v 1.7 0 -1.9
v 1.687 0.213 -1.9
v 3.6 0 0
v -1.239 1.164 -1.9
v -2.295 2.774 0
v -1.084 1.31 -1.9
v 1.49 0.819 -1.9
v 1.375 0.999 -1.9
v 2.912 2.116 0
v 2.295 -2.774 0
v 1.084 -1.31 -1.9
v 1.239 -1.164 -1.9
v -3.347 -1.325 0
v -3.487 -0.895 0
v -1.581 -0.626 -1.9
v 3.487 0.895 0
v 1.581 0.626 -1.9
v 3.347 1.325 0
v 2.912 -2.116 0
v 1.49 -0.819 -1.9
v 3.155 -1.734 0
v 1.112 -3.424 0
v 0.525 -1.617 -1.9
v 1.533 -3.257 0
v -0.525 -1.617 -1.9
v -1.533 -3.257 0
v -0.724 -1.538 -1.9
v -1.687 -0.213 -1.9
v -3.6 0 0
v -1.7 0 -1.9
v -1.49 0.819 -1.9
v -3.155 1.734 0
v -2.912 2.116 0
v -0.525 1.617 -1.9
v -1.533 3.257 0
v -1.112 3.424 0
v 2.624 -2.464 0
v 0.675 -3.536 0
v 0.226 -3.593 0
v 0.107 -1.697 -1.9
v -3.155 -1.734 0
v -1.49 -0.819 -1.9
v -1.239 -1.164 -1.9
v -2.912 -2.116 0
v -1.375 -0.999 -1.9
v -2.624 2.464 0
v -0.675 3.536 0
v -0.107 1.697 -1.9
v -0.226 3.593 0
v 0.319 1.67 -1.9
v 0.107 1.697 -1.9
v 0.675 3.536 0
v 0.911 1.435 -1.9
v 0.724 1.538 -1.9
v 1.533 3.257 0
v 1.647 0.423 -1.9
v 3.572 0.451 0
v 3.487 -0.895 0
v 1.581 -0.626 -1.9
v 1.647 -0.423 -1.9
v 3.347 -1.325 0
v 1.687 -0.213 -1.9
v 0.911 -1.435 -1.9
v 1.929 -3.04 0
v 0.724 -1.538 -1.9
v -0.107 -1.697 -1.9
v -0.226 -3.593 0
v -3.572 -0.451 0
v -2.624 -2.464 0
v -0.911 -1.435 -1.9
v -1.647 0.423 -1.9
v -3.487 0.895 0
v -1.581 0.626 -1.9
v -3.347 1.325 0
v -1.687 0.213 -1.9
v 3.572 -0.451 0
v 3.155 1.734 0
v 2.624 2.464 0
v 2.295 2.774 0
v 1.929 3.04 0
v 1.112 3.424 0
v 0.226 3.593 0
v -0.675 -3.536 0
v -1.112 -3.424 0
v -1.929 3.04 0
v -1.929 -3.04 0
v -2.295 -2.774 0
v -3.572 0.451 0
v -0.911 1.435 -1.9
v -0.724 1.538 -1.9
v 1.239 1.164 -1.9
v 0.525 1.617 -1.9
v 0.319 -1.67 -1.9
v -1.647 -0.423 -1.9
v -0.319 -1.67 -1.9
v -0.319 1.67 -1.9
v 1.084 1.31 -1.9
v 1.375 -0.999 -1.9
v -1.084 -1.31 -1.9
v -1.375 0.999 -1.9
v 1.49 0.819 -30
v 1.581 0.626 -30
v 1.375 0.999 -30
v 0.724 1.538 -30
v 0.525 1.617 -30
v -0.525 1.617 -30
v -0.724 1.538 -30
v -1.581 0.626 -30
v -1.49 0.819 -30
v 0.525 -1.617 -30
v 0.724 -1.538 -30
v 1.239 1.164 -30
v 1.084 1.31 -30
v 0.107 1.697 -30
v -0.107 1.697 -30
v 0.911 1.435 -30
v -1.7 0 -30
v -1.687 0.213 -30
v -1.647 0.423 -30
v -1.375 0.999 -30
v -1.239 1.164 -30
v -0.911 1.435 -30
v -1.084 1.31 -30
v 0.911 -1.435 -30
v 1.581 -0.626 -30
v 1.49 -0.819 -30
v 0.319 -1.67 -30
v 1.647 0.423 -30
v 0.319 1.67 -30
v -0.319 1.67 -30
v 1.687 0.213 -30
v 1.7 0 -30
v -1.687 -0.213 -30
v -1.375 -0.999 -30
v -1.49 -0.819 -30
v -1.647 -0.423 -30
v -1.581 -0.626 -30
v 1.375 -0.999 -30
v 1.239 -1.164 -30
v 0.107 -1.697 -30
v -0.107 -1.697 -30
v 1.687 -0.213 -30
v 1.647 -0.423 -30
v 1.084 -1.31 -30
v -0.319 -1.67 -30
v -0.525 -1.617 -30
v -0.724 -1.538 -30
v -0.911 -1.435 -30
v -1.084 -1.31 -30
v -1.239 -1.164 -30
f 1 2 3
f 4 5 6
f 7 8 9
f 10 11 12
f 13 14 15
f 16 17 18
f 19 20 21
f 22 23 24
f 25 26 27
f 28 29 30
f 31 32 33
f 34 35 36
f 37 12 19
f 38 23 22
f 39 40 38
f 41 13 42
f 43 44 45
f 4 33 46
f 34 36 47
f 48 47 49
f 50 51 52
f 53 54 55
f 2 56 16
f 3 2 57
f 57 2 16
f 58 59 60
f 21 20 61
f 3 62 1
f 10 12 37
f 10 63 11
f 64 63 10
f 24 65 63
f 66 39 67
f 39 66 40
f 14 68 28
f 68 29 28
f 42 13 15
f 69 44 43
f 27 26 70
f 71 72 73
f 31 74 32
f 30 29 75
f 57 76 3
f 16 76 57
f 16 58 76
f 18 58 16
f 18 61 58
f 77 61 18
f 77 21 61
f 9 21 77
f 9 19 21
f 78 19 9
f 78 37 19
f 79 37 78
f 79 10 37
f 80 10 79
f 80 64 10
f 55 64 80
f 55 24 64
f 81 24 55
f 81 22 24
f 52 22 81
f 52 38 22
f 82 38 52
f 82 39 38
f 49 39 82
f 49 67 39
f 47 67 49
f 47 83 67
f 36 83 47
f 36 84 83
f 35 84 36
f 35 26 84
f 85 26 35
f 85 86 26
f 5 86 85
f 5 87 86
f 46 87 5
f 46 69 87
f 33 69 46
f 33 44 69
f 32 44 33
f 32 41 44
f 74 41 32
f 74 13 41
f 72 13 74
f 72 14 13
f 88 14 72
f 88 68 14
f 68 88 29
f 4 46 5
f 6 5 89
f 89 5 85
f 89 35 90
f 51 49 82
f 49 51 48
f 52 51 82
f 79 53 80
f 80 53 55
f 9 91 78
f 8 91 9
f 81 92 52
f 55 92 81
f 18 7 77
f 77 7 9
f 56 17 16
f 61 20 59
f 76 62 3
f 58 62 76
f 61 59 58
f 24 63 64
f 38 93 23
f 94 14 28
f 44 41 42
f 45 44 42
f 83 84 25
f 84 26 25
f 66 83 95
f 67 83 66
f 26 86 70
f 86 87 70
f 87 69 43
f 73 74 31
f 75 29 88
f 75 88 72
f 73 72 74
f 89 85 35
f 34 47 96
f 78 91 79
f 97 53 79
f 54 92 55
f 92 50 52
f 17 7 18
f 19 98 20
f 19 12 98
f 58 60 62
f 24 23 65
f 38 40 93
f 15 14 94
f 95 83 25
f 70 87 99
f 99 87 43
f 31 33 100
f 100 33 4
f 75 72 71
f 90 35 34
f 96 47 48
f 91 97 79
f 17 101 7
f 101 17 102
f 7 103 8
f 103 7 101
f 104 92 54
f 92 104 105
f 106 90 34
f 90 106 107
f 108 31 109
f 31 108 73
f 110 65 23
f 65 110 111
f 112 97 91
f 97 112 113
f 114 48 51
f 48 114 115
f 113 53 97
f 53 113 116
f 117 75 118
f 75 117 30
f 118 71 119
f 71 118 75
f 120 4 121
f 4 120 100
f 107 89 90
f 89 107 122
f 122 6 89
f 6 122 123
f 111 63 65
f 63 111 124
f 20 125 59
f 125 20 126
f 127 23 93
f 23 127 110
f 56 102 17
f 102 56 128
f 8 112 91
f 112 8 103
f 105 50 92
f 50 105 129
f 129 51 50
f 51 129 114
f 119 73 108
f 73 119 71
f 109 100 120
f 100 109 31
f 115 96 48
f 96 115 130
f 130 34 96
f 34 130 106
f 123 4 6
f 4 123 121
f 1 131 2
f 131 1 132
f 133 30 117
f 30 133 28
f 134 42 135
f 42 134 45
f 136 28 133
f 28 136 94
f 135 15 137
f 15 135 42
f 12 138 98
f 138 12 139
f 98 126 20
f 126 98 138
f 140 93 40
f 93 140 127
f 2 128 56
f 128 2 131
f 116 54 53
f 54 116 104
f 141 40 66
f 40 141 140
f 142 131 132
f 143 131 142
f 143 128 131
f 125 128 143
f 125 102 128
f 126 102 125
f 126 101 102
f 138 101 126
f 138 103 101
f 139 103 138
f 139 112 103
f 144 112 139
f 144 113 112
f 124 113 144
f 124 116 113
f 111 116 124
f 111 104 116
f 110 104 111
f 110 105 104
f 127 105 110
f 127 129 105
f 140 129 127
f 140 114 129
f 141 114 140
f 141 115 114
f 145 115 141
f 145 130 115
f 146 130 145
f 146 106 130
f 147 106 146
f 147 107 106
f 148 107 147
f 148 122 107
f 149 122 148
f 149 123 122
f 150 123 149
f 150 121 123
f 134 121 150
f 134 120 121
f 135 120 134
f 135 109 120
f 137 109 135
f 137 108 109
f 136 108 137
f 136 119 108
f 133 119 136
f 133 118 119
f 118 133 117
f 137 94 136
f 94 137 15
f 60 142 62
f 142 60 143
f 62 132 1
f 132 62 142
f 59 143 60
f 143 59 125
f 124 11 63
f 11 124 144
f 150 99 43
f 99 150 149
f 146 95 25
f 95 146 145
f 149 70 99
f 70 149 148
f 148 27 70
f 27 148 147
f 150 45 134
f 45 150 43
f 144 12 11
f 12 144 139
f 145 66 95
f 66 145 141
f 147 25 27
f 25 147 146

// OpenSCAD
// Generated by SolidPython 1.1.3 on 2023-03-13 21:06:12
$fn = 50;


difference() {
	union() {
		translate(v = [0, 0, -1.9000000000]) {
			rotate(a = [0, 0, 0]) {
				cylinder(h = 1.9000000000, r1 = 1.7000000000, r2 = 3.6000000000);
			}
		}
		translate(v = [0, 0, -30]) {
			rotate(a = [0, 0, 0]) {
				cylinder(h = 30, r = 1.7000000000);
			}
		}
	}
	union();
}
/***********************************************
*********      SolidPython code:      **********
************************************************
 
from solid import *
import os
import subprocess

import oomB

import opsc_library_gen

mode = "laser"
#mode = "3d_print"

defined_objects = {}

radius_dict = {}
countersunk_dict = {}


def set_mode(m):
    global mode
    mode = m
    radius_dict['M6'] = 6.5/2
    radius_dict['M3'] = 3.3/2
    if mode == "laser":
        radius_dict['M6'] = 6/2
        radius_dict['M3'] = 3/2

    countersunk_dict['M3'] = {}
    countersunk_dict['M3']['little_rad'] = radius_dict['M3']
    countersunk_dict['M3']['big_rad'] = (5.5+0.6)/2
    if mode == "laser":
        countersunk_dict['M3']['big_rad'] = (4.75+0.6)/2
        countersunk_dict['M3']['little_rad'] = (4.75+0.6)/2

    countersunk_dict['M3']['height'] = 1.7


def opsc_make_object(filename, objects, save_type="none",resolution=50, layers = 1, tilediff = 200, mode="laser", overwrite=True):
    if overwrite or not os.path.exists(filename):
        set_mode(mode)
        save_type = save_type.lower()
        os.makedirs(os.path.dirname(filename), exist_ok=True)
        final_object = opsc_get_object(objects, mode = mode)
        # Save the final object to the specified filename    
        scad_render_to_file(final_object, filename, file_header='$fn = %s;' % resolution, include_orig_code=True)
        if save_type == "all":
            saveToAll(filename)
        elif save_type == "dxf":
            saveToDxf(filename)
        if mode == "laser":
            filename_laser = filename.replace(".scad","-flat.scad")
            scad_render_to_file(getLaser(final_object, layers=layers, tilediff=tilediff), filename_laser, file_header='$fn = %s;' % resolution, include_orig_code=True)
            if save_type == "all":
                saveToAll(filename_laser)
            elif save_type == "dxf":
                saveToDxf(filename_laser)


def opsc_get_object(objects, mode = "laser"):
    # Create the solidpython objects only include the positive objects and if they don't have inclusion or their inclusion is either all or mode
    # Initialize an empty list to store the results
    positive_objects = []

    # Iterate over the "objects" list
    for obj in objects:
        # Check if the current object has a "type" key with a value of "positive"
        if obj['type'] == 'positive':
            # Check if the current object has an "inclusion" key and its value matches "mode",
            # or if the current object does not have an "inclusion" key at all
            if not 'inclusion' in obj or obj['inclusion'] == "all" or obj['inclusion'] == mode:
                # Call the "get_opsc_item" function with the current object as an argument
                opsc_item = get_opsc_item(obj)
                # Add the result to the "positive_objects" list
                positive_objects.append(opsc_item)
# Initialize an empty list to store the results
    negative_objects = []

    # Iterate over the "objects" list
    for obj in objects:
        # Check if the current object has a "type" key with a value of "negative"
        if obj['type'] == 'negative':
            # Check if the current object has an "inclusion" key and its value matches "mode",
            # or if the current object does not have an "inclusion" key at all
            if not 'inclusion' in obj or obj['inclusion'] == "all" or obj['inclusion'] == mode:
                # Call the "get_opsc_item" function with the current object as an argument
                opsc_item = get_opsc_item(obj)
                # Add the result to the "negative_objects" list
                negative_objects.append(opsc_item)
    
    #positive_objects = [get_opsc_item(obj) for obj in objects if obj['type'] == 'positive']
    #negative_objects = [get_opsc_item(obj) for obj in objects if obj['type'] == 'negative']
    # Union the positive objects
    positive_object = union()(*positive_objects)
    # Union the negative objects
    negative_object = union()(*negative_objects)
    # Create the final object by subtracting the negative objects from the positive objects
    return difference()(positive_object, negative_object)

def get_opsc_item(params):
    # A dictionary to map radius string values to numerical values
    #radius_dict = {'small': 5, 'medium': 10, 'large': 15}
    # An array of function names for basic shapes
    basic_shapes = ['cube', 'sphere', 'cylinder']
    
    # An array of function names for other shapes
    other_shapes = ['hole', 'slot', 'rounded_rectangle', 'countersunk', 'polyg']
    


    # Convert radius to r if present, and remove radius from the params dictionary
    if 'radius' in params:
        if isinstance(params['radius'], str):
            # Use the radius_dict to map the radius string value to a numerical value
            params['r'] = radius_dict[params['radius']]
        else:
            params['r'] = params['radius']
        del params['radius']
    

    # Check if the object type is a basic shape
    if params['shape'] in basic_shapes:
        # Remove shape and unexpected dictionary values
        allowed_keys = {'size', 'r', 'r1', 'r2', 'd', 'h', 'rw', 'rh', 'dw', 'dh'}
        shape_params = {k: v for k, v in params.items() if k in allowed_keys}

        #params['m'] = "#"
        ###split for adding modifier
        try:
            m = params['m']
            func = globals()[params['shape']]
            return_value = get_opsc_transform(params,func(**shape_params))
            return_value = (return_value).set_modifier(m)
            return return_value
        except KeyError as e:
            return get_opsc_transform(params,globals()[params['shape']](**shape_params))
        
    elif params['shape'] == 'polygon':
        # Remove shape and unexpected dictionary values
        h  = params['height']
        allowed_keys = {'points'}
        shape_params = {k: v for k, v in params.items() if k in allowed_keys}

        # Call the corresponding function for the shape parameter, using ** notation to pass the shape_params dictionary as keyword arguments
        params["rot"] = [0,0,0]        
        try:
            m = params['m']
            func = globals()[params['shape']]
            return_value = get_opsc_transform(params,linear_extrude(h)(globals()[params['shape']](**shape_params)))
            return_value = (return_value).set_modifier(m)
            return return_value
        except KeyError as e:
            return_value = get_opsc_transform(params,linear_extrude(h)(globals()[params['shape']](**shape_params)))
            return_value = (return_value)
            return return_value


    # If the object type is not a basic shape, check if it's a defined object or one of the other shapes
    elif params['shape'] in other_shapes:
        # Call the corresponding function for the shape parameter, passing the params dictionary as an argument
        p2 = copy.deepcopy(params)
        p2["pos"] = [0,0,0]
        return get_opsc_transform(params,globals()[params['shape']](p2))
    
    # If the object is not a basic shape or a defined object, try to import it from a .scad file
    else:
        obj = defined_objects[params['shape']]
        return get_opsc_transform(params,obj)

def get_opsc_transform(params, solid_obj):
    # Rotate the object based on the 'rot' field in the params dictionary, or the 'rotX', 'rotY', and 'rotZ' fields if 'rot' is not present
    rot = params.get('rot', [])
    if rot:
        rotX, rotY, rotZ = rot
    else:
        rotX = params.get('rotX', 0)
        rotY = params.get('rotY', 0)
        rotZ = params.get('rotZ', 0)
    solid_obj = rotate([rotX, rotY, rotZ])(solid_obj)

    # Translate the object based on the 'pos' field in the params dictionary, or the 'x', 'y', and 'z' fields if 'pos' is not present
    pos = params.get('pos', [])
    if pos:
        x, y, z = pos
    else:
        x = params.get('x', 0)
        y = params.get('y', 0)
        z = params.get('z', 0)
    solid_obj = translate([x, y, z])(solid_obj)
    return solid_obj


import random

def opsc_easy_array(type, shape, repeats, pos_start, shift_arr, **kwargs):
    for i in range(0,3):
        repeats.append(1)
        pos_start.append(0)
        shift_arr.append(0)
    return_objects = []

    for x in range(0,repeats[0]):
        for y in range(0,repeats[1]):
            for z in range(0,repeats[2]):
                return_objects.append(opsc_easy(type, shape, pos=[pos_start[0]+x*shift_arr[0],pos_start[1]+y*shift_arr[1],pos_start[2]+z*shift_arr[2]], **kwargs))
    return return_objects                



def opsc_easy(type, shape, **kwargs):
    obj = {
        'type': type,
        'shape': shape
    }
    for param in ['size', 'r', 'r1', 'r2', 'd', 'h', 'rw', 'rh', 'dw', 'dh', 'pos', 'x', 'y', 'z', 'rot', 'rotX', 'rotY', 'rotZ', "w", "inclusion", 'sides', 'height', "m"]:
        if param in kwargs:
            obj[param] = kwargs[param]
    return obj

def hole(params):
    p2 = copy.deepcopy(params)  
    # Check if the radius is a string and replace it with the corresponding value from the dictionary
    if isinstance(p2['r'], str):
        p2['r'] = radius_dict[p2['r']]
    
    # Set the height to 100 if not specified
    if 'h' not in p2:
        p2['h'] = 100
        p2["pos"] = [0,0,-50]
    p2["center"] = True
    # Create the cylinder object
    p2["shape"] = "cylinder"
    p2["type"] = "positive"

    return get_opsc_item(p2)

import copy

def countersunk(params):
    p2 = copy.deepcopy(params)
    counter_rad = p2['r']
    p2['r'] = radius_dict[p2['r']]
    hp = copy.deepcopy(p2)
    hp["type"] = "positive"
    hp["shape"] = "hole"
    del hp["rot"]
    hol = get_opsc_item(hp)
    
    cp = copy.deepcopy(p2)
    cp["h"] = countersunk_dict[counter_rad]["height"]
    cp["r2"] = countersunk_dict[counter_rad]["little_rad"]
    cp["r1"] = countersunk_dict[counter_rad]["big_rad"]
    del cp["r"]
    del cp["rot"]
    cp["type"] = "positive"
    cp["shape"] = "cylinder"
    cp["pos"] = [0,0,0]

    top = get_opsc_item(cp)
    return union()(hol,top)



def slot(params):  
    p2 = copy.deepcopy(params) 
    if isinstance(p2['r'], str):
        p2['r'] = radius_dict[p2['r']]
    p2["type"] = "positive"
    p2["shape"] = "hole"
    del p2["rot"]
    p2["pos"] = [0,0,0]
    left = copy.deepcopy(p2)
    right = copy.deepcopy(p2)
    left["pos"][0] = p2["w"] / 2 - p2["r"] 
    
    right["pos"][0] = -p2["w"] / 2 + p2["r"] 
    pass
    leftObj = get_opsc_item(left)
    rightObj = get_opsc_item(right)
    return hull()(leftObj, rightObj)

def rounded_rectangle(params):   
    p2 = copy.deepcopy(params) 
    p2["h"] = p2["size"][2]
    p2["pos"] = p2.get("pos", [0, 0, 0]) 
    p2["type"] = "positive"
    p2["shape"] = "hole"
    p2["pos"] = [0,0,0]
    
    if 'rot' in p2:
        del p2["rot"]   
    if 'r' not in p2:
        p2["r"] = 5 
    tl = copy.deepcopy(p2)
    tr = copy.deepcopy(p2)
    bl = copy.deepcopy(p2)
    br = copy.deepcopy(p2)
    tl["pos"][0] = -(p2["size"][0] - p2["r"]*2)/2
    tl["pos"][1] = (p2["size"][1] - p2["r"]*2)/2
    tr["pos"][0] = (p2["size"][0] - p2["r"]*2)/2
    tr["pos"][1] = (p2["size"][1] - p2["r"]*2)/2
    bl["pos"][0] = -(p2["size"][0] - p2["r"]*2)/2
    bl["pos"][1] = -(p2["size"][1] - p2["r"]*2)/2
    br["pos"][0] = (p2["size"][0] - p2["r"]*2)/2
    br["pos"][1] = -(p2["size"][1] - p2["r"]*2)/2
    del tl["size"]
    del tr["size"]
    del bl["size"]
    del br["size"]
    tlo = get_opsc_item(tl)
    tro = get_opsc_item(tr)
    blo = get_opsc_item(bl)
    bro = get_opsc_item(br)    
    return hull()(tlo, tro, blo, bro)



def polyg(params):
    p2 = copy.deepcopy(params) 
    p2["type"] = "positive"
    p2["shape"] = "polygon"
    p2["pos"] = [0,0,0]
    sides = p2["sides"]
    radius = p2["r"]    
    angles = [i * 360 / sides for i in range(sides)]
    points = regular_polygon(sides, radius)
    
    p2["points"] = points
    return get_opsc_item(p2)

import math

def regular_polygon(num_sides, radius):
    # Calculate the angle between each side
    angle = 2 * math.pi / num_sides

    # Calculate the points of the polygon
    points = []
    for i in range(num_sides):
        x = radius * math.cos(i * angle)
        y = radius * math.sin(i * angle)
        points.append((x, y))
    return points

def import_scad_object(filename):
    # Import the .scad file and convert it to a solidpython object
    #filename = "parts"
    obj = import_scad(filename)
    return obj.main()



import os
import solid as solidpython

# A dictionary to store the defined objects


def load_scad_objects():
    opsc_library_gen.gen_library(defined_objects)

import random

def test(num_objects):
    objects = []
    for i in range(num_objects):
        # Choose a random shape
        #shape = random.choice(['cube', 'sphere', 'cylinder', 'hole', 'slot', "rounded_rectangle"])
        shape = random.choice(["rounded_rectangle"])

        # Choose a random type
        type = random.choice(['positive', 'negative'])
        
        # Create an empty object dictionary
        obj = {'shape': shape, 'type': type}
        
        # Set shape-specific parameters
        if obj['shape'] in ['cube']:
            obj['size'] =  [random.uniform(5, 15), random.uniform(5, 15), random.uniform(5, 15)]
        if obj['shape'] in ['rounded_rectangle']:
            obj['size'] =  [random.uniform(5, 15), random.uniform(5, 15), random.uniform(5, 15)]
            obj['r'] = random.uniform(0.5, 5)
        elif obj['shape'] == 'sphere':
            obj['r'] = random.uniform(5, 15)
        elif obj['shape'] in ['cylinder', 'hole']:
            obj['r'] = random.uniform(0.5, 5)
            obj['h'] = random.uniform(5, 15)
        elif obj['shape'] == 'slot':
            obj['r'] = random.uniform(0.5, 5)
            obj['h'] = random.uniform(5, 15)
            obj['w'] = random.uniform(5, 15)
        
        # Set a random position and rotation
        obj['pos'] = [random.uniform(-20, 20), random.uniform(-20, 20), random.uniform(-20, 20)]
        obj['rot'] = [random.uniform(-180, 180), random.uniform(-180, 180), random.uniform(-180, 180)]
        
        # Add the object to the list
        objects.append(obj)
    return objects

####### old file saving
def saveToAll(fileIn):
    saveToStl(fileIn)
    saveToDxf(fileIn)
    saveToPng(fileIn)
    saveToSvg(fileIn)

def saveToDxf(fileIn, fileOut="", copy_to_laser=True):
    if fileOut == "":
        fileOut = fileIn.replace(".scad",".dxf")
    saveToFile(fileIn, fileOut)


    
def saveToPng(fileIn, fileOut="",extra="--render"):
    if fileOut == "":
        fileOut = fileIn.replace(".scad",".png")
    saveToFile(fileIn, fileOut)

def saveToStl(fileIn, fileOut=""):
    if fileOut == "":
        fileOut = fileIn.replace(".scad",".stl")
    saveToFile(fileIn, fileOut)
    
def saveToSvg(fileIn, fileOut=""):
    if fileOut == "":
        fileOut = fileIn.replace(".scad",".svg")
    saveToFile(fileIn, fileOut)

def saveToFile(fileIn, fileOut,extra=""):
    #extra = extra + " --colorscheme Tomorrow"

    launchStr = 'openscad -o "' + fileOut + '"' + extra + ' "' + fileIn + '"'
    if ".png" in fileOut:
        launchStr = launchStr + " --render"
    print("            saveToFile launch string: " + launchStr)
    subprocess.run(launchStr)
    x=0

def getLaser(final_object,start=1.5,layers=1,thickness=3,tilediff=200):
        rv= []

        for x in range(layers):
            rv.append(translate([0,x*tilediff,0])(
                    projection()(
                        intersection()(translate([-500,-500,start+x*thickness])(cube(size=[1000,1000,0.1])),
                            final_object
                        )
                    )
            )
            )
            
        return union()(rv)

set_mode("laser")
load_scad_objects() 
 
************************************************/
